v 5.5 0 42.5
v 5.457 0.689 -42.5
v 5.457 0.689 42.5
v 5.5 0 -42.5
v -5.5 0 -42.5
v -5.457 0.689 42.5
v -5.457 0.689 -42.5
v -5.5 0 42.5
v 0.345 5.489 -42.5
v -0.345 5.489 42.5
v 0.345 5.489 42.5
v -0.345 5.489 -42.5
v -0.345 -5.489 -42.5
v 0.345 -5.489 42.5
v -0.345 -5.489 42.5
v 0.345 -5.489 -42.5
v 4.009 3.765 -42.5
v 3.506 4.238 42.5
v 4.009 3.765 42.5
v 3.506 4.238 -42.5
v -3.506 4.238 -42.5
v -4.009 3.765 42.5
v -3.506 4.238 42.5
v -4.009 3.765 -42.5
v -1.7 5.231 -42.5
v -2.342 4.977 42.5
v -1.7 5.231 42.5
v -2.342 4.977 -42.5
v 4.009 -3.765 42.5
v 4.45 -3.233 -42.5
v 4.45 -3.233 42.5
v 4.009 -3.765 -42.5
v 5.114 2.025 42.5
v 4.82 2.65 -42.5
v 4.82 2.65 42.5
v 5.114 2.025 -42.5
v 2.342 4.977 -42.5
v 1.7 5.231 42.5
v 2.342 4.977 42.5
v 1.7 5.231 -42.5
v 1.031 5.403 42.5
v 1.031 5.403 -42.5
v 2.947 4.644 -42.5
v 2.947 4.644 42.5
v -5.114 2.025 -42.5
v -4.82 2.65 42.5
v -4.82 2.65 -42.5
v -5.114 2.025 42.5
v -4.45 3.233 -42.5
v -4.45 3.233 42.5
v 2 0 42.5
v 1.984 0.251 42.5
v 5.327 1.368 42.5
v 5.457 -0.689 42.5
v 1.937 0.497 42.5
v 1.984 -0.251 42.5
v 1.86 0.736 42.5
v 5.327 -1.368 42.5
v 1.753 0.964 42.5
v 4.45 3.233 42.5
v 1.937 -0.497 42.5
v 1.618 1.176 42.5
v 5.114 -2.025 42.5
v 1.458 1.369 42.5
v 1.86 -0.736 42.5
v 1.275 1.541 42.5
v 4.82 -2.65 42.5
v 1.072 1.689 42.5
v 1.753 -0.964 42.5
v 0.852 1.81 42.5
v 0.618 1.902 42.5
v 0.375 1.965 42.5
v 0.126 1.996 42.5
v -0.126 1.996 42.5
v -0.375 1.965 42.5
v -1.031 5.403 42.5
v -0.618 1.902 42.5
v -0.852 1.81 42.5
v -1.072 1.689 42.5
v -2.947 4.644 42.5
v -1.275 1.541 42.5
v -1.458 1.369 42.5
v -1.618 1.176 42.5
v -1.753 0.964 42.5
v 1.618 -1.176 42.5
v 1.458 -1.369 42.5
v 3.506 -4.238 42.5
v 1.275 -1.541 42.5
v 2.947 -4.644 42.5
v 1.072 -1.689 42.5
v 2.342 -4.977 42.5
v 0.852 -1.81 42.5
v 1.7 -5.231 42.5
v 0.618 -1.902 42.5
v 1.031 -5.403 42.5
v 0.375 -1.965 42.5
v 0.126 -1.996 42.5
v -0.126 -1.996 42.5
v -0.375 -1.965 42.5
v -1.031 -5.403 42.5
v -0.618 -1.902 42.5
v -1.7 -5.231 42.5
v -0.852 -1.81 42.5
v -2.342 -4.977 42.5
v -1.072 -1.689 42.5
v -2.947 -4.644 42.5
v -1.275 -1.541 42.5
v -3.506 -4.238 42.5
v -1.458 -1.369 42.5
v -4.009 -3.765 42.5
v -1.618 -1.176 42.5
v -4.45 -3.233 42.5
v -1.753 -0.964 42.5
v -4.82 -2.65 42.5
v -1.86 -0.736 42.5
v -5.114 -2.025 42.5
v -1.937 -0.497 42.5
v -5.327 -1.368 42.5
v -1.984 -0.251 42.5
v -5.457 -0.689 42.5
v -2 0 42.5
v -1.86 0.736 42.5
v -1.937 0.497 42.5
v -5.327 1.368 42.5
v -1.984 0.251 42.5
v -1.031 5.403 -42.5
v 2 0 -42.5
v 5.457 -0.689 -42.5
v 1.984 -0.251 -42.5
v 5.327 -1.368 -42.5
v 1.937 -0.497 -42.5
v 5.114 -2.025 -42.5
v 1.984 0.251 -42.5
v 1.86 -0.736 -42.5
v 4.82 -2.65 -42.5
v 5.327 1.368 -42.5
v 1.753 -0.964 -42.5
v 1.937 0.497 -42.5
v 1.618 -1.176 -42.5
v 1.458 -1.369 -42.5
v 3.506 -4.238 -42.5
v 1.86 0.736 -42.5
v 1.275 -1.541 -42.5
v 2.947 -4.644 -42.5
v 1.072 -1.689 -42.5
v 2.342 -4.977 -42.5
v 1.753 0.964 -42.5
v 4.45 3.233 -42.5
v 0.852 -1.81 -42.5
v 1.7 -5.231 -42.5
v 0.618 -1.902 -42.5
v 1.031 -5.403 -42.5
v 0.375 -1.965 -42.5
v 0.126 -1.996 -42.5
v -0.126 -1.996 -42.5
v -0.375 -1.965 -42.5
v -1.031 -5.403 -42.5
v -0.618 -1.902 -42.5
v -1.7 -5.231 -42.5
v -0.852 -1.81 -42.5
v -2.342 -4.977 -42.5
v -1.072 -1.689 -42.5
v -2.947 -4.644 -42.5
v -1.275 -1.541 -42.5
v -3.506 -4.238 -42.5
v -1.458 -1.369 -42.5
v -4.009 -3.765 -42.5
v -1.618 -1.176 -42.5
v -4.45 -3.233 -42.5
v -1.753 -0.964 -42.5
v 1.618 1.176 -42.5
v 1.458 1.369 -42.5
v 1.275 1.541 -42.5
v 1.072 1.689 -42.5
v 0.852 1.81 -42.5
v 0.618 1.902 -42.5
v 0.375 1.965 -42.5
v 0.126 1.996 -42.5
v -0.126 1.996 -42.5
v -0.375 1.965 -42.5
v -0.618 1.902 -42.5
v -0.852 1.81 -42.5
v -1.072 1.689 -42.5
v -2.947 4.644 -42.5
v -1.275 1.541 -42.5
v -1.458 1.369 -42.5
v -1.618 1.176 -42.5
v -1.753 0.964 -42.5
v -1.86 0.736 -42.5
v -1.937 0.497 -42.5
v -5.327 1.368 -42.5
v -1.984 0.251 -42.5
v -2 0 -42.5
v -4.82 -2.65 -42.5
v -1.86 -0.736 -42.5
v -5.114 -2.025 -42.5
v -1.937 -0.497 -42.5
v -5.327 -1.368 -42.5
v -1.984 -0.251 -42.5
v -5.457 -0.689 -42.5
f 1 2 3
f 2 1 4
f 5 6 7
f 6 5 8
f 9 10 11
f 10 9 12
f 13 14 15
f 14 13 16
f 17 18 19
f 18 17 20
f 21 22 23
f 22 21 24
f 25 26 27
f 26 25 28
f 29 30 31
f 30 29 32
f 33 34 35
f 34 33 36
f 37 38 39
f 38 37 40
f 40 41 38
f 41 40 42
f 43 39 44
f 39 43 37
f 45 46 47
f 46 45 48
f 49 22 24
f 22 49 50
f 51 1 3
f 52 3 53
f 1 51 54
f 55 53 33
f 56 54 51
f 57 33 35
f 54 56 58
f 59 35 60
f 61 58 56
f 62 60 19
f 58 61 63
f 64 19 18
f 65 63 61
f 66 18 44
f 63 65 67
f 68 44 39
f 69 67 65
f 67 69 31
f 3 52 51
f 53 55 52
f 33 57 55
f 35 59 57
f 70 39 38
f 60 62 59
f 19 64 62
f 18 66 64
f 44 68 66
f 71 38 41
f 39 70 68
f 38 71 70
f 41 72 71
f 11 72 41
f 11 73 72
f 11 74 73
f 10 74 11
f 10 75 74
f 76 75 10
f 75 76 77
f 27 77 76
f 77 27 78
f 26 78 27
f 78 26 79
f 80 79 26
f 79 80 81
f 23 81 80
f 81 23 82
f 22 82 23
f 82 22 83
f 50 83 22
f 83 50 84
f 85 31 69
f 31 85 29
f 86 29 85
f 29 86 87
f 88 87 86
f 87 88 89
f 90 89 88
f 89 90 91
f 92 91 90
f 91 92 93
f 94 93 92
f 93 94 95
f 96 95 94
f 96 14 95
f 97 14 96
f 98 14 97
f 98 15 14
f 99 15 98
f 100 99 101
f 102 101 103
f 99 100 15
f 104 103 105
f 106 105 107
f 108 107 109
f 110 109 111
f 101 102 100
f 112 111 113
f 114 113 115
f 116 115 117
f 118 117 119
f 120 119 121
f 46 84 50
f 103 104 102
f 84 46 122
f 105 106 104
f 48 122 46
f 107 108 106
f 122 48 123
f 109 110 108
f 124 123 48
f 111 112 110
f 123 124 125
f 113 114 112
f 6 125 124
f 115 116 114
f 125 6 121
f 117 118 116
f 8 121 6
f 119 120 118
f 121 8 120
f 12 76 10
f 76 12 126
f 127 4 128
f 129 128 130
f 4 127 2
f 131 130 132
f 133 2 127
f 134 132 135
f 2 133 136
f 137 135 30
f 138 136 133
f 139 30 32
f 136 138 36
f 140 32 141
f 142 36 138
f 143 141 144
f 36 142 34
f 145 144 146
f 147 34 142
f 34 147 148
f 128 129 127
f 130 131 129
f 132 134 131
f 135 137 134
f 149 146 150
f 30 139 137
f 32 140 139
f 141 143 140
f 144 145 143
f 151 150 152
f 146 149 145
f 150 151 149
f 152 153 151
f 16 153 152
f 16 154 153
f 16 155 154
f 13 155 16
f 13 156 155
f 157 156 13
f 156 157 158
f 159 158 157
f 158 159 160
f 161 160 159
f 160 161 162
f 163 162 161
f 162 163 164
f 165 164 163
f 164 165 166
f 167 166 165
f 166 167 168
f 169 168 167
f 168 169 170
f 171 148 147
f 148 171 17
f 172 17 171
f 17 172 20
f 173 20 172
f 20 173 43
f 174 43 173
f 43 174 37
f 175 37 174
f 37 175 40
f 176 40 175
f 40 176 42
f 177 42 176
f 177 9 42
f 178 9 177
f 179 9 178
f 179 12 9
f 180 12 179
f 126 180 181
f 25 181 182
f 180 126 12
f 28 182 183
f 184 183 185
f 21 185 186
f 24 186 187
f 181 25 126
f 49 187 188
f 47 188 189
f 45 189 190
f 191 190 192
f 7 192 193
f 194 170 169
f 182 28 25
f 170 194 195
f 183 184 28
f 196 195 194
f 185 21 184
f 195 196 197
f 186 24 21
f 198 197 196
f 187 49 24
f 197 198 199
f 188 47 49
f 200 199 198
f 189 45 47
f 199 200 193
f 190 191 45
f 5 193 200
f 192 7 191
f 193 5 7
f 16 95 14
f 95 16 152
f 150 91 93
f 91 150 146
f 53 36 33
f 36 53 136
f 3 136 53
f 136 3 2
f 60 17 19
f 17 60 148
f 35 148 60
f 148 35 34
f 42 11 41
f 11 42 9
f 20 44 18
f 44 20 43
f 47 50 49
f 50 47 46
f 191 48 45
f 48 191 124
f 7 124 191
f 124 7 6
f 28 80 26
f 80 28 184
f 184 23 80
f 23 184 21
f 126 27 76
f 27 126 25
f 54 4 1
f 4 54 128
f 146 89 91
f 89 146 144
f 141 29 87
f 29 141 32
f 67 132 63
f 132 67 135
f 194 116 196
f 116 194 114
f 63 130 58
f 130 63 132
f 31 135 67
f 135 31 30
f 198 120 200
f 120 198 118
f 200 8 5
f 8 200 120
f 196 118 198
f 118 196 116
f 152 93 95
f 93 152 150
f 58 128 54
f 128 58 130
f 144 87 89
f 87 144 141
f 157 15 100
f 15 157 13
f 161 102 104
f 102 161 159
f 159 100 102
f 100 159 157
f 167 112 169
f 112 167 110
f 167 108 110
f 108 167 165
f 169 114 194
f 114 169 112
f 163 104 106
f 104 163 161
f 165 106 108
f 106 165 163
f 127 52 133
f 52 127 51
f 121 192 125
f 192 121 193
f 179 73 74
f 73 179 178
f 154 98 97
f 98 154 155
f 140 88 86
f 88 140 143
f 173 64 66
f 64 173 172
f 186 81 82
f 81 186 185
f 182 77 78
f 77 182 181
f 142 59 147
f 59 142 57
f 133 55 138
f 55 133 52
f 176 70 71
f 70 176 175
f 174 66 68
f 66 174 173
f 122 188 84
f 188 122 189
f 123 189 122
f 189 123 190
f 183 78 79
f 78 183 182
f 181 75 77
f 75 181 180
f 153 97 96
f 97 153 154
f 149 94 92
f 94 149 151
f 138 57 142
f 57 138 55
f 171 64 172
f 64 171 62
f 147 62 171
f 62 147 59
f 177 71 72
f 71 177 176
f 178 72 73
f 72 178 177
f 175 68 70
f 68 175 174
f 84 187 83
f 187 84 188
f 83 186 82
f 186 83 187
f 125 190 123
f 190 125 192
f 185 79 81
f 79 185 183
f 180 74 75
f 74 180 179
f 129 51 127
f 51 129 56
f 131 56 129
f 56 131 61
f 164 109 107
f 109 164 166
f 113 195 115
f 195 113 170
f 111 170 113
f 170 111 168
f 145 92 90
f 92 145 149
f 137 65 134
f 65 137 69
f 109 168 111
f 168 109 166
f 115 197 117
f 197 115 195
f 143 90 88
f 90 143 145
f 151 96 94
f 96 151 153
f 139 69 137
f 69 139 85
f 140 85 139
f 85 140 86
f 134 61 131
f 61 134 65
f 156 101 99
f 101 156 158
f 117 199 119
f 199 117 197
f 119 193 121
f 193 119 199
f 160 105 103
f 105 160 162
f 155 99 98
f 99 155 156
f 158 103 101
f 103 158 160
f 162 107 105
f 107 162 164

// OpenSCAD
$fn = 50;


difference() {
	union() {
		translate(v = [0, 0, -42.5000000000]) {
			cylinder(h = 85, r = 5.5000000000);
		}
	}
	union() {
		translate(v = [0, 0, -100.0000000000]) {
			cylinder(h = 200, r = 2);
		}
	}
}
